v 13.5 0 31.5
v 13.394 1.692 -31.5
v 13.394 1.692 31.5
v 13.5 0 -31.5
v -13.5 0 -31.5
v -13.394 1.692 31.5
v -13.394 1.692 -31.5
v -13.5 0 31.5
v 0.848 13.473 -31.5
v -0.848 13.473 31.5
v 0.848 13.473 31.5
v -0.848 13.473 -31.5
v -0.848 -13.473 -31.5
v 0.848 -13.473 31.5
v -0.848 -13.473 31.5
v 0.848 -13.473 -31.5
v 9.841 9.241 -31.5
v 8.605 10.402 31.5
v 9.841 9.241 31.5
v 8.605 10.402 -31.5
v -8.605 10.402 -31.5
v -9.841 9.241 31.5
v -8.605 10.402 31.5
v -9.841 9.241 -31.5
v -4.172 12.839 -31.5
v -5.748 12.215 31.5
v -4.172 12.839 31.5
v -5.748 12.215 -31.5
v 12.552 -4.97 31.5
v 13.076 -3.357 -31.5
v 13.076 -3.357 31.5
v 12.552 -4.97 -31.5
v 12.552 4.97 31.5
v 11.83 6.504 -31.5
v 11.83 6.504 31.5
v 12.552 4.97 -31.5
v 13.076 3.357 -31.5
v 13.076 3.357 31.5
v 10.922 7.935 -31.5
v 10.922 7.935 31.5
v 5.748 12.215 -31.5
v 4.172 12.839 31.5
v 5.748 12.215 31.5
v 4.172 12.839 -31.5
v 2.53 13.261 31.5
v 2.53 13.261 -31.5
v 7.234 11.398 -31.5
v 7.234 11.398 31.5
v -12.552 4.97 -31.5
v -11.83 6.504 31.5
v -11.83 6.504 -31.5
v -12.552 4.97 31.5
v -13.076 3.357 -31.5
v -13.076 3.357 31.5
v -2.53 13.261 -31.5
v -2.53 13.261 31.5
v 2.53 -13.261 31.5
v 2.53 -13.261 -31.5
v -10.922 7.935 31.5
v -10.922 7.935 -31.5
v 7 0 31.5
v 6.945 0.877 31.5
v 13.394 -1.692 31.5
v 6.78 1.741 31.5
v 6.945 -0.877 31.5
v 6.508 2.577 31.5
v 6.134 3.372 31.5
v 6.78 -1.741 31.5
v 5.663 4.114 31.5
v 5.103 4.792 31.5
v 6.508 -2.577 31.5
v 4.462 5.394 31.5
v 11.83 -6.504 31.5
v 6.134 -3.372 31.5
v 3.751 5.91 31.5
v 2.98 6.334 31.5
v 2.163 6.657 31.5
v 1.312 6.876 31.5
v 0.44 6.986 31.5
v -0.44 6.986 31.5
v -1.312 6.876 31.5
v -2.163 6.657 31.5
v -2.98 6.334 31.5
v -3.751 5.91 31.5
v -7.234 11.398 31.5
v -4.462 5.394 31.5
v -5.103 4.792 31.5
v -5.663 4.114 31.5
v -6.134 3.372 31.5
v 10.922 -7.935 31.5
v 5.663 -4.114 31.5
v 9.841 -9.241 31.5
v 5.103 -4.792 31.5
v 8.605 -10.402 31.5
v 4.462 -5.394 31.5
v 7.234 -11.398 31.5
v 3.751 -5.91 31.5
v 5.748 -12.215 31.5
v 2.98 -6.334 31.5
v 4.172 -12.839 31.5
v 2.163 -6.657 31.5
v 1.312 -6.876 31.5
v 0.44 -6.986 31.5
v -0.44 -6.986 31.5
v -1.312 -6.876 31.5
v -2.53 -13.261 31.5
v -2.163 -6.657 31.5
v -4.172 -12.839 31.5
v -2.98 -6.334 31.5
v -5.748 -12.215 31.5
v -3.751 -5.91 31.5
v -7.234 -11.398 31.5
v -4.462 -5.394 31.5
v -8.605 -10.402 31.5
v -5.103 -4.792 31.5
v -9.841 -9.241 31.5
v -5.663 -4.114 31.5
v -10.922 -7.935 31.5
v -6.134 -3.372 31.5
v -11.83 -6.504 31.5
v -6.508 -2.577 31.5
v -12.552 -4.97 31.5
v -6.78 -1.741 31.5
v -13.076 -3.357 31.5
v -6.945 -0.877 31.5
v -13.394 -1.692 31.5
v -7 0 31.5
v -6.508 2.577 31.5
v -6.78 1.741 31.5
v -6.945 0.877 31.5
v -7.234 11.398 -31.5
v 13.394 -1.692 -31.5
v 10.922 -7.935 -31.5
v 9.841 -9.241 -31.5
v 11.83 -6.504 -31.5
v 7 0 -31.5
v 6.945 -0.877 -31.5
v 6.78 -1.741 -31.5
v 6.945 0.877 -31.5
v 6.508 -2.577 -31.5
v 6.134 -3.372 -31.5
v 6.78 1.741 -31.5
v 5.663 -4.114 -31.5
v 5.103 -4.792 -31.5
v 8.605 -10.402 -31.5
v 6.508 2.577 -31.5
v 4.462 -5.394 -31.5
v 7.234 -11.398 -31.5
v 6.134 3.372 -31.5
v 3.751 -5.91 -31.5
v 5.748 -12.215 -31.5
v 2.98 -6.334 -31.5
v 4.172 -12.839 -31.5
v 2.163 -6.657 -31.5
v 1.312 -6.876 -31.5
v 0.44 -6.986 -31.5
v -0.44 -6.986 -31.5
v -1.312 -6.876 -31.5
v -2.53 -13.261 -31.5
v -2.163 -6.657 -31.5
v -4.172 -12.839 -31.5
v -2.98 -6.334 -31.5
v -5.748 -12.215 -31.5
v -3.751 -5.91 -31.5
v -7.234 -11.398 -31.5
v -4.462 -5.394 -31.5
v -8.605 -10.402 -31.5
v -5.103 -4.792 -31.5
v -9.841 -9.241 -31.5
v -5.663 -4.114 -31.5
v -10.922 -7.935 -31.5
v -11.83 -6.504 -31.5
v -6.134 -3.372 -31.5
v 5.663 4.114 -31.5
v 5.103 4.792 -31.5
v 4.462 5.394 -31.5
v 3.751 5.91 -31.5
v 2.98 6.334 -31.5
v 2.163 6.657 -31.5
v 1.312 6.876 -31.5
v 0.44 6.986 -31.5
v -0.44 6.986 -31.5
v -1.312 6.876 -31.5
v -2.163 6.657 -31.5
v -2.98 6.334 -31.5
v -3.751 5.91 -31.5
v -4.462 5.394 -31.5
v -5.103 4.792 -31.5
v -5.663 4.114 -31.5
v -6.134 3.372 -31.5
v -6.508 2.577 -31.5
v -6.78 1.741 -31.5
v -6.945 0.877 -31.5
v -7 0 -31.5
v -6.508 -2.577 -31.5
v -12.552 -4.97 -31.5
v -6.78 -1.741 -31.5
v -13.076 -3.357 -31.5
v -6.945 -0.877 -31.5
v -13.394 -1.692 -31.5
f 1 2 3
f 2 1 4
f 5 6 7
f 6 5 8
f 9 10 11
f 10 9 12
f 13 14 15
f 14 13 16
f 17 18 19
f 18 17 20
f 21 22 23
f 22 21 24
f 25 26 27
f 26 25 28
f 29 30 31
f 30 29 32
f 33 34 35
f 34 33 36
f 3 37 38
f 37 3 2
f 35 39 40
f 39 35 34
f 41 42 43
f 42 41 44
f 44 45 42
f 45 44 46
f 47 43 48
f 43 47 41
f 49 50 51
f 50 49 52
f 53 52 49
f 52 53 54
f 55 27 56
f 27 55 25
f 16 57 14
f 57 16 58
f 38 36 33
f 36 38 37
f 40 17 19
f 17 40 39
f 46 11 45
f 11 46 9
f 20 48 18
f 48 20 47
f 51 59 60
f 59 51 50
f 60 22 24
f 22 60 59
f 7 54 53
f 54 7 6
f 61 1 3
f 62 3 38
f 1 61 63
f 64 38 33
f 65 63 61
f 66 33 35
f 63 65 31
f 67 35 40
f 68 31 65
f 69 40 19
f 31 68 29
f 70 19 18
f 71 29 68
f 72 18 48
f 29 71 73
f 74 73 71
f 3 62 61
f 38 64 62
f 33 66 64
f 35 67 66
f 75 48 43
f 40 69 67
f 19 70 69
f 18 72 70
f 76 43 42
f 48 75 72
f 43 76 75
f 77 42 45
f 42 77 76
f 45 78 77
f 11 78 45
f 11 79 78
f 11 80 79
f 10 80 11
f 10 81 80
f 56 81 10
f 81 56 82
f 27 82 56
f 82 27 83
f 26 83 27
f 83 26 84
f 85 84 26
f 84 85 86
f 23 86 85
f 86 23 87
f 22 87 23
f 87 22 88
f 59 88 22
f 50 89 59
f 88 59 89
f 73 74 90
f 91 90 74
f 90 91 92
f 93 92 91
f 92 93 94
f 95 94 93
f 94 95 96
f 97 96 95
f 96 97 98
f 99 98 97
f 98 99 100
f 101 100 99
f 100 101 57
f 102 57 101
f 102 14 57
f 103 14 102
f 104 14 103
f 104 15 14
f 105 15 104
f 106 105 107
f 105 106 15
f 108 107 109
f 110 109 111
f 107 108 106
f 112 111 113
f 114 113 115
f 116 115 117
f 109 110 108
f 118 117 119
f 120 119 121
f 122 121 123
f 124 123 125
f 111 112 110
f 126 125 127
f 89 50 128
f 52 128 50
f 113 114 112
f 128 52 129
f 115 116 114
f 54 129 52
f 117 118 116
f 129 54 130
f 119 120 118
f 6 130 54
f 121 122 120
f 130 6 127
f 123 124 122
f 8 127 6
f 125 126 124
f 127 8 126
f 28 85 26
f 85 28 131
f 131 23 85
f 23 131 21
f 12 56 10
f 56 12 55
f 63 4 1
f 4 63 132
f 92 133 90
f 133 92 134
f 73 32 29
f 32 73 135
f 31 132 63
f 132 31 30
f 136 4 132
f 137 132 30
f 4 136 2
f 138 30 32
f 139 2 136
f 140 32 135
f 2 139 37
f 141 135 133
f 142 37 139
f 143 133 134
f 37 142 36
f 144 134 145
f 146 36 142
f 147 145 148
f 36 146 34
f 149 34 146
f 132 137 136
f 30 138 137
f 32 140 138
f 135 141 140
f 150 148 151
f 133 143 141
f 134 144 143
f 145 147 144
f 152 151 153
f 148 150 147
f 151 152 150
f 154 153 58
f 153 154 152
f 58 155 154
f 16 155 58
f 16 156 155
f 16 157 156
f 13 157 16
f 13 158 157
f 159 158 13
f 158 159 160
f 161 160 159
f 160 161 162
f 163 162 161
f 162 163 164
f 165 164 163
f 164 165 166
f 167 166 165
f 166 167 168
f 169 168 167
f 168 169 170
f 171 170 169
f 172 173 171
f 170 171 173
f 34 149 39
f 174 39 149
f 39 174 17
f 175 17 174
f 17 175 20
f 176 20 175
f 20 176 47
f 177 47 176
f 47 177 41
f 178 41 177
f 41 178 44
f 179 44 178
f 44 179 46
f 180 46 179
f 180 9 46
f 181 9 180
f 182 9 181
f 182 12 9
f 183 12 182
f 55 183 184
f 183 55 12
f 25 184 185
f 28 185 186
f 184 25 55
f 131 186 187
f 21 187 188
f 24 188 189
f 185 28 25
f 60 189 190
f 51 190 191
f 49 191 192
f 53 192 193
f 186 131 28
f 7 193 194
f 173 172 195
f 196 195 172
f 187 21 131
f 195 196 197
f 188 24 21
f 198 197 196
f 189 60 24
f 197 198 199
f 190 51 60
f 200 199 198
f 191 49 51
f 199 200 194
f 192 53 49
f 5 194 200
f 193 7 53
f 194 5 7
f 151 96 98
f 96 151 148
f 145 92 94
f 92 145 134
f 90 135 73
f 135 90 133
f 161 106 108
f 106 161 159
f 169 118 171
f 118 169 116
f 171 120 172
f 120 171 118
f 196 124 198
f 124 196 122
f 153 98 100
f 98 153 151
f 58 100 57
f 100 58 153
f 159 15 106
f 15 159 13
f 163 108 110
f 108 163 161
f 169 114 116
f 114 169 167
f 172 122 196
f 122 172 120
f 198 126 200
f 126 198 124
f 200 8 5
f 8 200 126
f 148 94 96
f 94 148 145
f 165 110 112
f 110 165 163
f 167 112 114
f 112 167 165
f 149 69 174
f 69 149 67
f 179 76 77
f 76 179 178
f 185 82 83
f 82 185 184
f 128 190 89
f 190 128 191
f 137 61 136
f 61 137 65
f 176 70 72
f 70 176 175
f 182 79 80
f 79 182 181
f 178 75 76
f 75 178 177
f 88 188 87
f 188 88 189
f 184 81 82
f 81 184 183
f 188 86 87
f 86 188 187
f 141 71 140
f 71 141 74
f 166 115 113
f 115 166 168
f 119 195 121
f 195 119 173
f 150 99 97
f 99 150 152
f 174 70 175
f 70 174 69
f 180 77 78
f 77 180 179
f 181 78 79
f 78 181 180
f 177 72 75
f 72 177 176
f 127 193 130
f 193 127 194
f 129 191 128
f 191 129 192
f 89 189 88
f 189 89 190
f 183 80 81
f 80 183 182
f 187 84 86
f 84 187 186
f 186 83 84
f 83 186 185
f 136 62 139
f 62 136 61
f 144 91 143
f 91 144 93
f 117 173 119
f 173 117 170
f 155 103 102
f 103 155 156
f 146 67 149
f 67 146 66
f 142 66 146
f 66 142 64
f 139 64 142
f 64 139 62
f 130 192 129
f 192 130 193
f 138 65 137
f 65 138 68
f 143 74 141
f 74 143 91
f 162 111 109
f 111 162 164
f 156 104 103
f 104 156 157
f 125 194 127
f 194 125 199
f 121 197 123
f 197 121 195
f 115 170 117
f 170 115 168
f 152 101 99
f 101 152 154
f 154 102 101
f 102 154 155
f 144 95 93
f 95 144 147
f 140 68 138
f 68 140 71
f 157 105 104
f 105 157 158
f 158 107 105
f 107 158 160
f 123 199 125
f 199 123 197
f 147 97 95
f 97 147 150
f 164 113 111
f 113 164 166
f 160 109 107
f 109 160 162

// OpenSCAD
$fn = 50;


difference() {
	union() {
		translate(v = [0, 0, -31.5000000000]) {
			cylinder(h = 63, r = 13.5000000000);
		}
	}
	union() {
		translate(v = [0, 0, -100.0000000000]) {
			cylinder(h = 200, r = 7);
		}
	}
}
